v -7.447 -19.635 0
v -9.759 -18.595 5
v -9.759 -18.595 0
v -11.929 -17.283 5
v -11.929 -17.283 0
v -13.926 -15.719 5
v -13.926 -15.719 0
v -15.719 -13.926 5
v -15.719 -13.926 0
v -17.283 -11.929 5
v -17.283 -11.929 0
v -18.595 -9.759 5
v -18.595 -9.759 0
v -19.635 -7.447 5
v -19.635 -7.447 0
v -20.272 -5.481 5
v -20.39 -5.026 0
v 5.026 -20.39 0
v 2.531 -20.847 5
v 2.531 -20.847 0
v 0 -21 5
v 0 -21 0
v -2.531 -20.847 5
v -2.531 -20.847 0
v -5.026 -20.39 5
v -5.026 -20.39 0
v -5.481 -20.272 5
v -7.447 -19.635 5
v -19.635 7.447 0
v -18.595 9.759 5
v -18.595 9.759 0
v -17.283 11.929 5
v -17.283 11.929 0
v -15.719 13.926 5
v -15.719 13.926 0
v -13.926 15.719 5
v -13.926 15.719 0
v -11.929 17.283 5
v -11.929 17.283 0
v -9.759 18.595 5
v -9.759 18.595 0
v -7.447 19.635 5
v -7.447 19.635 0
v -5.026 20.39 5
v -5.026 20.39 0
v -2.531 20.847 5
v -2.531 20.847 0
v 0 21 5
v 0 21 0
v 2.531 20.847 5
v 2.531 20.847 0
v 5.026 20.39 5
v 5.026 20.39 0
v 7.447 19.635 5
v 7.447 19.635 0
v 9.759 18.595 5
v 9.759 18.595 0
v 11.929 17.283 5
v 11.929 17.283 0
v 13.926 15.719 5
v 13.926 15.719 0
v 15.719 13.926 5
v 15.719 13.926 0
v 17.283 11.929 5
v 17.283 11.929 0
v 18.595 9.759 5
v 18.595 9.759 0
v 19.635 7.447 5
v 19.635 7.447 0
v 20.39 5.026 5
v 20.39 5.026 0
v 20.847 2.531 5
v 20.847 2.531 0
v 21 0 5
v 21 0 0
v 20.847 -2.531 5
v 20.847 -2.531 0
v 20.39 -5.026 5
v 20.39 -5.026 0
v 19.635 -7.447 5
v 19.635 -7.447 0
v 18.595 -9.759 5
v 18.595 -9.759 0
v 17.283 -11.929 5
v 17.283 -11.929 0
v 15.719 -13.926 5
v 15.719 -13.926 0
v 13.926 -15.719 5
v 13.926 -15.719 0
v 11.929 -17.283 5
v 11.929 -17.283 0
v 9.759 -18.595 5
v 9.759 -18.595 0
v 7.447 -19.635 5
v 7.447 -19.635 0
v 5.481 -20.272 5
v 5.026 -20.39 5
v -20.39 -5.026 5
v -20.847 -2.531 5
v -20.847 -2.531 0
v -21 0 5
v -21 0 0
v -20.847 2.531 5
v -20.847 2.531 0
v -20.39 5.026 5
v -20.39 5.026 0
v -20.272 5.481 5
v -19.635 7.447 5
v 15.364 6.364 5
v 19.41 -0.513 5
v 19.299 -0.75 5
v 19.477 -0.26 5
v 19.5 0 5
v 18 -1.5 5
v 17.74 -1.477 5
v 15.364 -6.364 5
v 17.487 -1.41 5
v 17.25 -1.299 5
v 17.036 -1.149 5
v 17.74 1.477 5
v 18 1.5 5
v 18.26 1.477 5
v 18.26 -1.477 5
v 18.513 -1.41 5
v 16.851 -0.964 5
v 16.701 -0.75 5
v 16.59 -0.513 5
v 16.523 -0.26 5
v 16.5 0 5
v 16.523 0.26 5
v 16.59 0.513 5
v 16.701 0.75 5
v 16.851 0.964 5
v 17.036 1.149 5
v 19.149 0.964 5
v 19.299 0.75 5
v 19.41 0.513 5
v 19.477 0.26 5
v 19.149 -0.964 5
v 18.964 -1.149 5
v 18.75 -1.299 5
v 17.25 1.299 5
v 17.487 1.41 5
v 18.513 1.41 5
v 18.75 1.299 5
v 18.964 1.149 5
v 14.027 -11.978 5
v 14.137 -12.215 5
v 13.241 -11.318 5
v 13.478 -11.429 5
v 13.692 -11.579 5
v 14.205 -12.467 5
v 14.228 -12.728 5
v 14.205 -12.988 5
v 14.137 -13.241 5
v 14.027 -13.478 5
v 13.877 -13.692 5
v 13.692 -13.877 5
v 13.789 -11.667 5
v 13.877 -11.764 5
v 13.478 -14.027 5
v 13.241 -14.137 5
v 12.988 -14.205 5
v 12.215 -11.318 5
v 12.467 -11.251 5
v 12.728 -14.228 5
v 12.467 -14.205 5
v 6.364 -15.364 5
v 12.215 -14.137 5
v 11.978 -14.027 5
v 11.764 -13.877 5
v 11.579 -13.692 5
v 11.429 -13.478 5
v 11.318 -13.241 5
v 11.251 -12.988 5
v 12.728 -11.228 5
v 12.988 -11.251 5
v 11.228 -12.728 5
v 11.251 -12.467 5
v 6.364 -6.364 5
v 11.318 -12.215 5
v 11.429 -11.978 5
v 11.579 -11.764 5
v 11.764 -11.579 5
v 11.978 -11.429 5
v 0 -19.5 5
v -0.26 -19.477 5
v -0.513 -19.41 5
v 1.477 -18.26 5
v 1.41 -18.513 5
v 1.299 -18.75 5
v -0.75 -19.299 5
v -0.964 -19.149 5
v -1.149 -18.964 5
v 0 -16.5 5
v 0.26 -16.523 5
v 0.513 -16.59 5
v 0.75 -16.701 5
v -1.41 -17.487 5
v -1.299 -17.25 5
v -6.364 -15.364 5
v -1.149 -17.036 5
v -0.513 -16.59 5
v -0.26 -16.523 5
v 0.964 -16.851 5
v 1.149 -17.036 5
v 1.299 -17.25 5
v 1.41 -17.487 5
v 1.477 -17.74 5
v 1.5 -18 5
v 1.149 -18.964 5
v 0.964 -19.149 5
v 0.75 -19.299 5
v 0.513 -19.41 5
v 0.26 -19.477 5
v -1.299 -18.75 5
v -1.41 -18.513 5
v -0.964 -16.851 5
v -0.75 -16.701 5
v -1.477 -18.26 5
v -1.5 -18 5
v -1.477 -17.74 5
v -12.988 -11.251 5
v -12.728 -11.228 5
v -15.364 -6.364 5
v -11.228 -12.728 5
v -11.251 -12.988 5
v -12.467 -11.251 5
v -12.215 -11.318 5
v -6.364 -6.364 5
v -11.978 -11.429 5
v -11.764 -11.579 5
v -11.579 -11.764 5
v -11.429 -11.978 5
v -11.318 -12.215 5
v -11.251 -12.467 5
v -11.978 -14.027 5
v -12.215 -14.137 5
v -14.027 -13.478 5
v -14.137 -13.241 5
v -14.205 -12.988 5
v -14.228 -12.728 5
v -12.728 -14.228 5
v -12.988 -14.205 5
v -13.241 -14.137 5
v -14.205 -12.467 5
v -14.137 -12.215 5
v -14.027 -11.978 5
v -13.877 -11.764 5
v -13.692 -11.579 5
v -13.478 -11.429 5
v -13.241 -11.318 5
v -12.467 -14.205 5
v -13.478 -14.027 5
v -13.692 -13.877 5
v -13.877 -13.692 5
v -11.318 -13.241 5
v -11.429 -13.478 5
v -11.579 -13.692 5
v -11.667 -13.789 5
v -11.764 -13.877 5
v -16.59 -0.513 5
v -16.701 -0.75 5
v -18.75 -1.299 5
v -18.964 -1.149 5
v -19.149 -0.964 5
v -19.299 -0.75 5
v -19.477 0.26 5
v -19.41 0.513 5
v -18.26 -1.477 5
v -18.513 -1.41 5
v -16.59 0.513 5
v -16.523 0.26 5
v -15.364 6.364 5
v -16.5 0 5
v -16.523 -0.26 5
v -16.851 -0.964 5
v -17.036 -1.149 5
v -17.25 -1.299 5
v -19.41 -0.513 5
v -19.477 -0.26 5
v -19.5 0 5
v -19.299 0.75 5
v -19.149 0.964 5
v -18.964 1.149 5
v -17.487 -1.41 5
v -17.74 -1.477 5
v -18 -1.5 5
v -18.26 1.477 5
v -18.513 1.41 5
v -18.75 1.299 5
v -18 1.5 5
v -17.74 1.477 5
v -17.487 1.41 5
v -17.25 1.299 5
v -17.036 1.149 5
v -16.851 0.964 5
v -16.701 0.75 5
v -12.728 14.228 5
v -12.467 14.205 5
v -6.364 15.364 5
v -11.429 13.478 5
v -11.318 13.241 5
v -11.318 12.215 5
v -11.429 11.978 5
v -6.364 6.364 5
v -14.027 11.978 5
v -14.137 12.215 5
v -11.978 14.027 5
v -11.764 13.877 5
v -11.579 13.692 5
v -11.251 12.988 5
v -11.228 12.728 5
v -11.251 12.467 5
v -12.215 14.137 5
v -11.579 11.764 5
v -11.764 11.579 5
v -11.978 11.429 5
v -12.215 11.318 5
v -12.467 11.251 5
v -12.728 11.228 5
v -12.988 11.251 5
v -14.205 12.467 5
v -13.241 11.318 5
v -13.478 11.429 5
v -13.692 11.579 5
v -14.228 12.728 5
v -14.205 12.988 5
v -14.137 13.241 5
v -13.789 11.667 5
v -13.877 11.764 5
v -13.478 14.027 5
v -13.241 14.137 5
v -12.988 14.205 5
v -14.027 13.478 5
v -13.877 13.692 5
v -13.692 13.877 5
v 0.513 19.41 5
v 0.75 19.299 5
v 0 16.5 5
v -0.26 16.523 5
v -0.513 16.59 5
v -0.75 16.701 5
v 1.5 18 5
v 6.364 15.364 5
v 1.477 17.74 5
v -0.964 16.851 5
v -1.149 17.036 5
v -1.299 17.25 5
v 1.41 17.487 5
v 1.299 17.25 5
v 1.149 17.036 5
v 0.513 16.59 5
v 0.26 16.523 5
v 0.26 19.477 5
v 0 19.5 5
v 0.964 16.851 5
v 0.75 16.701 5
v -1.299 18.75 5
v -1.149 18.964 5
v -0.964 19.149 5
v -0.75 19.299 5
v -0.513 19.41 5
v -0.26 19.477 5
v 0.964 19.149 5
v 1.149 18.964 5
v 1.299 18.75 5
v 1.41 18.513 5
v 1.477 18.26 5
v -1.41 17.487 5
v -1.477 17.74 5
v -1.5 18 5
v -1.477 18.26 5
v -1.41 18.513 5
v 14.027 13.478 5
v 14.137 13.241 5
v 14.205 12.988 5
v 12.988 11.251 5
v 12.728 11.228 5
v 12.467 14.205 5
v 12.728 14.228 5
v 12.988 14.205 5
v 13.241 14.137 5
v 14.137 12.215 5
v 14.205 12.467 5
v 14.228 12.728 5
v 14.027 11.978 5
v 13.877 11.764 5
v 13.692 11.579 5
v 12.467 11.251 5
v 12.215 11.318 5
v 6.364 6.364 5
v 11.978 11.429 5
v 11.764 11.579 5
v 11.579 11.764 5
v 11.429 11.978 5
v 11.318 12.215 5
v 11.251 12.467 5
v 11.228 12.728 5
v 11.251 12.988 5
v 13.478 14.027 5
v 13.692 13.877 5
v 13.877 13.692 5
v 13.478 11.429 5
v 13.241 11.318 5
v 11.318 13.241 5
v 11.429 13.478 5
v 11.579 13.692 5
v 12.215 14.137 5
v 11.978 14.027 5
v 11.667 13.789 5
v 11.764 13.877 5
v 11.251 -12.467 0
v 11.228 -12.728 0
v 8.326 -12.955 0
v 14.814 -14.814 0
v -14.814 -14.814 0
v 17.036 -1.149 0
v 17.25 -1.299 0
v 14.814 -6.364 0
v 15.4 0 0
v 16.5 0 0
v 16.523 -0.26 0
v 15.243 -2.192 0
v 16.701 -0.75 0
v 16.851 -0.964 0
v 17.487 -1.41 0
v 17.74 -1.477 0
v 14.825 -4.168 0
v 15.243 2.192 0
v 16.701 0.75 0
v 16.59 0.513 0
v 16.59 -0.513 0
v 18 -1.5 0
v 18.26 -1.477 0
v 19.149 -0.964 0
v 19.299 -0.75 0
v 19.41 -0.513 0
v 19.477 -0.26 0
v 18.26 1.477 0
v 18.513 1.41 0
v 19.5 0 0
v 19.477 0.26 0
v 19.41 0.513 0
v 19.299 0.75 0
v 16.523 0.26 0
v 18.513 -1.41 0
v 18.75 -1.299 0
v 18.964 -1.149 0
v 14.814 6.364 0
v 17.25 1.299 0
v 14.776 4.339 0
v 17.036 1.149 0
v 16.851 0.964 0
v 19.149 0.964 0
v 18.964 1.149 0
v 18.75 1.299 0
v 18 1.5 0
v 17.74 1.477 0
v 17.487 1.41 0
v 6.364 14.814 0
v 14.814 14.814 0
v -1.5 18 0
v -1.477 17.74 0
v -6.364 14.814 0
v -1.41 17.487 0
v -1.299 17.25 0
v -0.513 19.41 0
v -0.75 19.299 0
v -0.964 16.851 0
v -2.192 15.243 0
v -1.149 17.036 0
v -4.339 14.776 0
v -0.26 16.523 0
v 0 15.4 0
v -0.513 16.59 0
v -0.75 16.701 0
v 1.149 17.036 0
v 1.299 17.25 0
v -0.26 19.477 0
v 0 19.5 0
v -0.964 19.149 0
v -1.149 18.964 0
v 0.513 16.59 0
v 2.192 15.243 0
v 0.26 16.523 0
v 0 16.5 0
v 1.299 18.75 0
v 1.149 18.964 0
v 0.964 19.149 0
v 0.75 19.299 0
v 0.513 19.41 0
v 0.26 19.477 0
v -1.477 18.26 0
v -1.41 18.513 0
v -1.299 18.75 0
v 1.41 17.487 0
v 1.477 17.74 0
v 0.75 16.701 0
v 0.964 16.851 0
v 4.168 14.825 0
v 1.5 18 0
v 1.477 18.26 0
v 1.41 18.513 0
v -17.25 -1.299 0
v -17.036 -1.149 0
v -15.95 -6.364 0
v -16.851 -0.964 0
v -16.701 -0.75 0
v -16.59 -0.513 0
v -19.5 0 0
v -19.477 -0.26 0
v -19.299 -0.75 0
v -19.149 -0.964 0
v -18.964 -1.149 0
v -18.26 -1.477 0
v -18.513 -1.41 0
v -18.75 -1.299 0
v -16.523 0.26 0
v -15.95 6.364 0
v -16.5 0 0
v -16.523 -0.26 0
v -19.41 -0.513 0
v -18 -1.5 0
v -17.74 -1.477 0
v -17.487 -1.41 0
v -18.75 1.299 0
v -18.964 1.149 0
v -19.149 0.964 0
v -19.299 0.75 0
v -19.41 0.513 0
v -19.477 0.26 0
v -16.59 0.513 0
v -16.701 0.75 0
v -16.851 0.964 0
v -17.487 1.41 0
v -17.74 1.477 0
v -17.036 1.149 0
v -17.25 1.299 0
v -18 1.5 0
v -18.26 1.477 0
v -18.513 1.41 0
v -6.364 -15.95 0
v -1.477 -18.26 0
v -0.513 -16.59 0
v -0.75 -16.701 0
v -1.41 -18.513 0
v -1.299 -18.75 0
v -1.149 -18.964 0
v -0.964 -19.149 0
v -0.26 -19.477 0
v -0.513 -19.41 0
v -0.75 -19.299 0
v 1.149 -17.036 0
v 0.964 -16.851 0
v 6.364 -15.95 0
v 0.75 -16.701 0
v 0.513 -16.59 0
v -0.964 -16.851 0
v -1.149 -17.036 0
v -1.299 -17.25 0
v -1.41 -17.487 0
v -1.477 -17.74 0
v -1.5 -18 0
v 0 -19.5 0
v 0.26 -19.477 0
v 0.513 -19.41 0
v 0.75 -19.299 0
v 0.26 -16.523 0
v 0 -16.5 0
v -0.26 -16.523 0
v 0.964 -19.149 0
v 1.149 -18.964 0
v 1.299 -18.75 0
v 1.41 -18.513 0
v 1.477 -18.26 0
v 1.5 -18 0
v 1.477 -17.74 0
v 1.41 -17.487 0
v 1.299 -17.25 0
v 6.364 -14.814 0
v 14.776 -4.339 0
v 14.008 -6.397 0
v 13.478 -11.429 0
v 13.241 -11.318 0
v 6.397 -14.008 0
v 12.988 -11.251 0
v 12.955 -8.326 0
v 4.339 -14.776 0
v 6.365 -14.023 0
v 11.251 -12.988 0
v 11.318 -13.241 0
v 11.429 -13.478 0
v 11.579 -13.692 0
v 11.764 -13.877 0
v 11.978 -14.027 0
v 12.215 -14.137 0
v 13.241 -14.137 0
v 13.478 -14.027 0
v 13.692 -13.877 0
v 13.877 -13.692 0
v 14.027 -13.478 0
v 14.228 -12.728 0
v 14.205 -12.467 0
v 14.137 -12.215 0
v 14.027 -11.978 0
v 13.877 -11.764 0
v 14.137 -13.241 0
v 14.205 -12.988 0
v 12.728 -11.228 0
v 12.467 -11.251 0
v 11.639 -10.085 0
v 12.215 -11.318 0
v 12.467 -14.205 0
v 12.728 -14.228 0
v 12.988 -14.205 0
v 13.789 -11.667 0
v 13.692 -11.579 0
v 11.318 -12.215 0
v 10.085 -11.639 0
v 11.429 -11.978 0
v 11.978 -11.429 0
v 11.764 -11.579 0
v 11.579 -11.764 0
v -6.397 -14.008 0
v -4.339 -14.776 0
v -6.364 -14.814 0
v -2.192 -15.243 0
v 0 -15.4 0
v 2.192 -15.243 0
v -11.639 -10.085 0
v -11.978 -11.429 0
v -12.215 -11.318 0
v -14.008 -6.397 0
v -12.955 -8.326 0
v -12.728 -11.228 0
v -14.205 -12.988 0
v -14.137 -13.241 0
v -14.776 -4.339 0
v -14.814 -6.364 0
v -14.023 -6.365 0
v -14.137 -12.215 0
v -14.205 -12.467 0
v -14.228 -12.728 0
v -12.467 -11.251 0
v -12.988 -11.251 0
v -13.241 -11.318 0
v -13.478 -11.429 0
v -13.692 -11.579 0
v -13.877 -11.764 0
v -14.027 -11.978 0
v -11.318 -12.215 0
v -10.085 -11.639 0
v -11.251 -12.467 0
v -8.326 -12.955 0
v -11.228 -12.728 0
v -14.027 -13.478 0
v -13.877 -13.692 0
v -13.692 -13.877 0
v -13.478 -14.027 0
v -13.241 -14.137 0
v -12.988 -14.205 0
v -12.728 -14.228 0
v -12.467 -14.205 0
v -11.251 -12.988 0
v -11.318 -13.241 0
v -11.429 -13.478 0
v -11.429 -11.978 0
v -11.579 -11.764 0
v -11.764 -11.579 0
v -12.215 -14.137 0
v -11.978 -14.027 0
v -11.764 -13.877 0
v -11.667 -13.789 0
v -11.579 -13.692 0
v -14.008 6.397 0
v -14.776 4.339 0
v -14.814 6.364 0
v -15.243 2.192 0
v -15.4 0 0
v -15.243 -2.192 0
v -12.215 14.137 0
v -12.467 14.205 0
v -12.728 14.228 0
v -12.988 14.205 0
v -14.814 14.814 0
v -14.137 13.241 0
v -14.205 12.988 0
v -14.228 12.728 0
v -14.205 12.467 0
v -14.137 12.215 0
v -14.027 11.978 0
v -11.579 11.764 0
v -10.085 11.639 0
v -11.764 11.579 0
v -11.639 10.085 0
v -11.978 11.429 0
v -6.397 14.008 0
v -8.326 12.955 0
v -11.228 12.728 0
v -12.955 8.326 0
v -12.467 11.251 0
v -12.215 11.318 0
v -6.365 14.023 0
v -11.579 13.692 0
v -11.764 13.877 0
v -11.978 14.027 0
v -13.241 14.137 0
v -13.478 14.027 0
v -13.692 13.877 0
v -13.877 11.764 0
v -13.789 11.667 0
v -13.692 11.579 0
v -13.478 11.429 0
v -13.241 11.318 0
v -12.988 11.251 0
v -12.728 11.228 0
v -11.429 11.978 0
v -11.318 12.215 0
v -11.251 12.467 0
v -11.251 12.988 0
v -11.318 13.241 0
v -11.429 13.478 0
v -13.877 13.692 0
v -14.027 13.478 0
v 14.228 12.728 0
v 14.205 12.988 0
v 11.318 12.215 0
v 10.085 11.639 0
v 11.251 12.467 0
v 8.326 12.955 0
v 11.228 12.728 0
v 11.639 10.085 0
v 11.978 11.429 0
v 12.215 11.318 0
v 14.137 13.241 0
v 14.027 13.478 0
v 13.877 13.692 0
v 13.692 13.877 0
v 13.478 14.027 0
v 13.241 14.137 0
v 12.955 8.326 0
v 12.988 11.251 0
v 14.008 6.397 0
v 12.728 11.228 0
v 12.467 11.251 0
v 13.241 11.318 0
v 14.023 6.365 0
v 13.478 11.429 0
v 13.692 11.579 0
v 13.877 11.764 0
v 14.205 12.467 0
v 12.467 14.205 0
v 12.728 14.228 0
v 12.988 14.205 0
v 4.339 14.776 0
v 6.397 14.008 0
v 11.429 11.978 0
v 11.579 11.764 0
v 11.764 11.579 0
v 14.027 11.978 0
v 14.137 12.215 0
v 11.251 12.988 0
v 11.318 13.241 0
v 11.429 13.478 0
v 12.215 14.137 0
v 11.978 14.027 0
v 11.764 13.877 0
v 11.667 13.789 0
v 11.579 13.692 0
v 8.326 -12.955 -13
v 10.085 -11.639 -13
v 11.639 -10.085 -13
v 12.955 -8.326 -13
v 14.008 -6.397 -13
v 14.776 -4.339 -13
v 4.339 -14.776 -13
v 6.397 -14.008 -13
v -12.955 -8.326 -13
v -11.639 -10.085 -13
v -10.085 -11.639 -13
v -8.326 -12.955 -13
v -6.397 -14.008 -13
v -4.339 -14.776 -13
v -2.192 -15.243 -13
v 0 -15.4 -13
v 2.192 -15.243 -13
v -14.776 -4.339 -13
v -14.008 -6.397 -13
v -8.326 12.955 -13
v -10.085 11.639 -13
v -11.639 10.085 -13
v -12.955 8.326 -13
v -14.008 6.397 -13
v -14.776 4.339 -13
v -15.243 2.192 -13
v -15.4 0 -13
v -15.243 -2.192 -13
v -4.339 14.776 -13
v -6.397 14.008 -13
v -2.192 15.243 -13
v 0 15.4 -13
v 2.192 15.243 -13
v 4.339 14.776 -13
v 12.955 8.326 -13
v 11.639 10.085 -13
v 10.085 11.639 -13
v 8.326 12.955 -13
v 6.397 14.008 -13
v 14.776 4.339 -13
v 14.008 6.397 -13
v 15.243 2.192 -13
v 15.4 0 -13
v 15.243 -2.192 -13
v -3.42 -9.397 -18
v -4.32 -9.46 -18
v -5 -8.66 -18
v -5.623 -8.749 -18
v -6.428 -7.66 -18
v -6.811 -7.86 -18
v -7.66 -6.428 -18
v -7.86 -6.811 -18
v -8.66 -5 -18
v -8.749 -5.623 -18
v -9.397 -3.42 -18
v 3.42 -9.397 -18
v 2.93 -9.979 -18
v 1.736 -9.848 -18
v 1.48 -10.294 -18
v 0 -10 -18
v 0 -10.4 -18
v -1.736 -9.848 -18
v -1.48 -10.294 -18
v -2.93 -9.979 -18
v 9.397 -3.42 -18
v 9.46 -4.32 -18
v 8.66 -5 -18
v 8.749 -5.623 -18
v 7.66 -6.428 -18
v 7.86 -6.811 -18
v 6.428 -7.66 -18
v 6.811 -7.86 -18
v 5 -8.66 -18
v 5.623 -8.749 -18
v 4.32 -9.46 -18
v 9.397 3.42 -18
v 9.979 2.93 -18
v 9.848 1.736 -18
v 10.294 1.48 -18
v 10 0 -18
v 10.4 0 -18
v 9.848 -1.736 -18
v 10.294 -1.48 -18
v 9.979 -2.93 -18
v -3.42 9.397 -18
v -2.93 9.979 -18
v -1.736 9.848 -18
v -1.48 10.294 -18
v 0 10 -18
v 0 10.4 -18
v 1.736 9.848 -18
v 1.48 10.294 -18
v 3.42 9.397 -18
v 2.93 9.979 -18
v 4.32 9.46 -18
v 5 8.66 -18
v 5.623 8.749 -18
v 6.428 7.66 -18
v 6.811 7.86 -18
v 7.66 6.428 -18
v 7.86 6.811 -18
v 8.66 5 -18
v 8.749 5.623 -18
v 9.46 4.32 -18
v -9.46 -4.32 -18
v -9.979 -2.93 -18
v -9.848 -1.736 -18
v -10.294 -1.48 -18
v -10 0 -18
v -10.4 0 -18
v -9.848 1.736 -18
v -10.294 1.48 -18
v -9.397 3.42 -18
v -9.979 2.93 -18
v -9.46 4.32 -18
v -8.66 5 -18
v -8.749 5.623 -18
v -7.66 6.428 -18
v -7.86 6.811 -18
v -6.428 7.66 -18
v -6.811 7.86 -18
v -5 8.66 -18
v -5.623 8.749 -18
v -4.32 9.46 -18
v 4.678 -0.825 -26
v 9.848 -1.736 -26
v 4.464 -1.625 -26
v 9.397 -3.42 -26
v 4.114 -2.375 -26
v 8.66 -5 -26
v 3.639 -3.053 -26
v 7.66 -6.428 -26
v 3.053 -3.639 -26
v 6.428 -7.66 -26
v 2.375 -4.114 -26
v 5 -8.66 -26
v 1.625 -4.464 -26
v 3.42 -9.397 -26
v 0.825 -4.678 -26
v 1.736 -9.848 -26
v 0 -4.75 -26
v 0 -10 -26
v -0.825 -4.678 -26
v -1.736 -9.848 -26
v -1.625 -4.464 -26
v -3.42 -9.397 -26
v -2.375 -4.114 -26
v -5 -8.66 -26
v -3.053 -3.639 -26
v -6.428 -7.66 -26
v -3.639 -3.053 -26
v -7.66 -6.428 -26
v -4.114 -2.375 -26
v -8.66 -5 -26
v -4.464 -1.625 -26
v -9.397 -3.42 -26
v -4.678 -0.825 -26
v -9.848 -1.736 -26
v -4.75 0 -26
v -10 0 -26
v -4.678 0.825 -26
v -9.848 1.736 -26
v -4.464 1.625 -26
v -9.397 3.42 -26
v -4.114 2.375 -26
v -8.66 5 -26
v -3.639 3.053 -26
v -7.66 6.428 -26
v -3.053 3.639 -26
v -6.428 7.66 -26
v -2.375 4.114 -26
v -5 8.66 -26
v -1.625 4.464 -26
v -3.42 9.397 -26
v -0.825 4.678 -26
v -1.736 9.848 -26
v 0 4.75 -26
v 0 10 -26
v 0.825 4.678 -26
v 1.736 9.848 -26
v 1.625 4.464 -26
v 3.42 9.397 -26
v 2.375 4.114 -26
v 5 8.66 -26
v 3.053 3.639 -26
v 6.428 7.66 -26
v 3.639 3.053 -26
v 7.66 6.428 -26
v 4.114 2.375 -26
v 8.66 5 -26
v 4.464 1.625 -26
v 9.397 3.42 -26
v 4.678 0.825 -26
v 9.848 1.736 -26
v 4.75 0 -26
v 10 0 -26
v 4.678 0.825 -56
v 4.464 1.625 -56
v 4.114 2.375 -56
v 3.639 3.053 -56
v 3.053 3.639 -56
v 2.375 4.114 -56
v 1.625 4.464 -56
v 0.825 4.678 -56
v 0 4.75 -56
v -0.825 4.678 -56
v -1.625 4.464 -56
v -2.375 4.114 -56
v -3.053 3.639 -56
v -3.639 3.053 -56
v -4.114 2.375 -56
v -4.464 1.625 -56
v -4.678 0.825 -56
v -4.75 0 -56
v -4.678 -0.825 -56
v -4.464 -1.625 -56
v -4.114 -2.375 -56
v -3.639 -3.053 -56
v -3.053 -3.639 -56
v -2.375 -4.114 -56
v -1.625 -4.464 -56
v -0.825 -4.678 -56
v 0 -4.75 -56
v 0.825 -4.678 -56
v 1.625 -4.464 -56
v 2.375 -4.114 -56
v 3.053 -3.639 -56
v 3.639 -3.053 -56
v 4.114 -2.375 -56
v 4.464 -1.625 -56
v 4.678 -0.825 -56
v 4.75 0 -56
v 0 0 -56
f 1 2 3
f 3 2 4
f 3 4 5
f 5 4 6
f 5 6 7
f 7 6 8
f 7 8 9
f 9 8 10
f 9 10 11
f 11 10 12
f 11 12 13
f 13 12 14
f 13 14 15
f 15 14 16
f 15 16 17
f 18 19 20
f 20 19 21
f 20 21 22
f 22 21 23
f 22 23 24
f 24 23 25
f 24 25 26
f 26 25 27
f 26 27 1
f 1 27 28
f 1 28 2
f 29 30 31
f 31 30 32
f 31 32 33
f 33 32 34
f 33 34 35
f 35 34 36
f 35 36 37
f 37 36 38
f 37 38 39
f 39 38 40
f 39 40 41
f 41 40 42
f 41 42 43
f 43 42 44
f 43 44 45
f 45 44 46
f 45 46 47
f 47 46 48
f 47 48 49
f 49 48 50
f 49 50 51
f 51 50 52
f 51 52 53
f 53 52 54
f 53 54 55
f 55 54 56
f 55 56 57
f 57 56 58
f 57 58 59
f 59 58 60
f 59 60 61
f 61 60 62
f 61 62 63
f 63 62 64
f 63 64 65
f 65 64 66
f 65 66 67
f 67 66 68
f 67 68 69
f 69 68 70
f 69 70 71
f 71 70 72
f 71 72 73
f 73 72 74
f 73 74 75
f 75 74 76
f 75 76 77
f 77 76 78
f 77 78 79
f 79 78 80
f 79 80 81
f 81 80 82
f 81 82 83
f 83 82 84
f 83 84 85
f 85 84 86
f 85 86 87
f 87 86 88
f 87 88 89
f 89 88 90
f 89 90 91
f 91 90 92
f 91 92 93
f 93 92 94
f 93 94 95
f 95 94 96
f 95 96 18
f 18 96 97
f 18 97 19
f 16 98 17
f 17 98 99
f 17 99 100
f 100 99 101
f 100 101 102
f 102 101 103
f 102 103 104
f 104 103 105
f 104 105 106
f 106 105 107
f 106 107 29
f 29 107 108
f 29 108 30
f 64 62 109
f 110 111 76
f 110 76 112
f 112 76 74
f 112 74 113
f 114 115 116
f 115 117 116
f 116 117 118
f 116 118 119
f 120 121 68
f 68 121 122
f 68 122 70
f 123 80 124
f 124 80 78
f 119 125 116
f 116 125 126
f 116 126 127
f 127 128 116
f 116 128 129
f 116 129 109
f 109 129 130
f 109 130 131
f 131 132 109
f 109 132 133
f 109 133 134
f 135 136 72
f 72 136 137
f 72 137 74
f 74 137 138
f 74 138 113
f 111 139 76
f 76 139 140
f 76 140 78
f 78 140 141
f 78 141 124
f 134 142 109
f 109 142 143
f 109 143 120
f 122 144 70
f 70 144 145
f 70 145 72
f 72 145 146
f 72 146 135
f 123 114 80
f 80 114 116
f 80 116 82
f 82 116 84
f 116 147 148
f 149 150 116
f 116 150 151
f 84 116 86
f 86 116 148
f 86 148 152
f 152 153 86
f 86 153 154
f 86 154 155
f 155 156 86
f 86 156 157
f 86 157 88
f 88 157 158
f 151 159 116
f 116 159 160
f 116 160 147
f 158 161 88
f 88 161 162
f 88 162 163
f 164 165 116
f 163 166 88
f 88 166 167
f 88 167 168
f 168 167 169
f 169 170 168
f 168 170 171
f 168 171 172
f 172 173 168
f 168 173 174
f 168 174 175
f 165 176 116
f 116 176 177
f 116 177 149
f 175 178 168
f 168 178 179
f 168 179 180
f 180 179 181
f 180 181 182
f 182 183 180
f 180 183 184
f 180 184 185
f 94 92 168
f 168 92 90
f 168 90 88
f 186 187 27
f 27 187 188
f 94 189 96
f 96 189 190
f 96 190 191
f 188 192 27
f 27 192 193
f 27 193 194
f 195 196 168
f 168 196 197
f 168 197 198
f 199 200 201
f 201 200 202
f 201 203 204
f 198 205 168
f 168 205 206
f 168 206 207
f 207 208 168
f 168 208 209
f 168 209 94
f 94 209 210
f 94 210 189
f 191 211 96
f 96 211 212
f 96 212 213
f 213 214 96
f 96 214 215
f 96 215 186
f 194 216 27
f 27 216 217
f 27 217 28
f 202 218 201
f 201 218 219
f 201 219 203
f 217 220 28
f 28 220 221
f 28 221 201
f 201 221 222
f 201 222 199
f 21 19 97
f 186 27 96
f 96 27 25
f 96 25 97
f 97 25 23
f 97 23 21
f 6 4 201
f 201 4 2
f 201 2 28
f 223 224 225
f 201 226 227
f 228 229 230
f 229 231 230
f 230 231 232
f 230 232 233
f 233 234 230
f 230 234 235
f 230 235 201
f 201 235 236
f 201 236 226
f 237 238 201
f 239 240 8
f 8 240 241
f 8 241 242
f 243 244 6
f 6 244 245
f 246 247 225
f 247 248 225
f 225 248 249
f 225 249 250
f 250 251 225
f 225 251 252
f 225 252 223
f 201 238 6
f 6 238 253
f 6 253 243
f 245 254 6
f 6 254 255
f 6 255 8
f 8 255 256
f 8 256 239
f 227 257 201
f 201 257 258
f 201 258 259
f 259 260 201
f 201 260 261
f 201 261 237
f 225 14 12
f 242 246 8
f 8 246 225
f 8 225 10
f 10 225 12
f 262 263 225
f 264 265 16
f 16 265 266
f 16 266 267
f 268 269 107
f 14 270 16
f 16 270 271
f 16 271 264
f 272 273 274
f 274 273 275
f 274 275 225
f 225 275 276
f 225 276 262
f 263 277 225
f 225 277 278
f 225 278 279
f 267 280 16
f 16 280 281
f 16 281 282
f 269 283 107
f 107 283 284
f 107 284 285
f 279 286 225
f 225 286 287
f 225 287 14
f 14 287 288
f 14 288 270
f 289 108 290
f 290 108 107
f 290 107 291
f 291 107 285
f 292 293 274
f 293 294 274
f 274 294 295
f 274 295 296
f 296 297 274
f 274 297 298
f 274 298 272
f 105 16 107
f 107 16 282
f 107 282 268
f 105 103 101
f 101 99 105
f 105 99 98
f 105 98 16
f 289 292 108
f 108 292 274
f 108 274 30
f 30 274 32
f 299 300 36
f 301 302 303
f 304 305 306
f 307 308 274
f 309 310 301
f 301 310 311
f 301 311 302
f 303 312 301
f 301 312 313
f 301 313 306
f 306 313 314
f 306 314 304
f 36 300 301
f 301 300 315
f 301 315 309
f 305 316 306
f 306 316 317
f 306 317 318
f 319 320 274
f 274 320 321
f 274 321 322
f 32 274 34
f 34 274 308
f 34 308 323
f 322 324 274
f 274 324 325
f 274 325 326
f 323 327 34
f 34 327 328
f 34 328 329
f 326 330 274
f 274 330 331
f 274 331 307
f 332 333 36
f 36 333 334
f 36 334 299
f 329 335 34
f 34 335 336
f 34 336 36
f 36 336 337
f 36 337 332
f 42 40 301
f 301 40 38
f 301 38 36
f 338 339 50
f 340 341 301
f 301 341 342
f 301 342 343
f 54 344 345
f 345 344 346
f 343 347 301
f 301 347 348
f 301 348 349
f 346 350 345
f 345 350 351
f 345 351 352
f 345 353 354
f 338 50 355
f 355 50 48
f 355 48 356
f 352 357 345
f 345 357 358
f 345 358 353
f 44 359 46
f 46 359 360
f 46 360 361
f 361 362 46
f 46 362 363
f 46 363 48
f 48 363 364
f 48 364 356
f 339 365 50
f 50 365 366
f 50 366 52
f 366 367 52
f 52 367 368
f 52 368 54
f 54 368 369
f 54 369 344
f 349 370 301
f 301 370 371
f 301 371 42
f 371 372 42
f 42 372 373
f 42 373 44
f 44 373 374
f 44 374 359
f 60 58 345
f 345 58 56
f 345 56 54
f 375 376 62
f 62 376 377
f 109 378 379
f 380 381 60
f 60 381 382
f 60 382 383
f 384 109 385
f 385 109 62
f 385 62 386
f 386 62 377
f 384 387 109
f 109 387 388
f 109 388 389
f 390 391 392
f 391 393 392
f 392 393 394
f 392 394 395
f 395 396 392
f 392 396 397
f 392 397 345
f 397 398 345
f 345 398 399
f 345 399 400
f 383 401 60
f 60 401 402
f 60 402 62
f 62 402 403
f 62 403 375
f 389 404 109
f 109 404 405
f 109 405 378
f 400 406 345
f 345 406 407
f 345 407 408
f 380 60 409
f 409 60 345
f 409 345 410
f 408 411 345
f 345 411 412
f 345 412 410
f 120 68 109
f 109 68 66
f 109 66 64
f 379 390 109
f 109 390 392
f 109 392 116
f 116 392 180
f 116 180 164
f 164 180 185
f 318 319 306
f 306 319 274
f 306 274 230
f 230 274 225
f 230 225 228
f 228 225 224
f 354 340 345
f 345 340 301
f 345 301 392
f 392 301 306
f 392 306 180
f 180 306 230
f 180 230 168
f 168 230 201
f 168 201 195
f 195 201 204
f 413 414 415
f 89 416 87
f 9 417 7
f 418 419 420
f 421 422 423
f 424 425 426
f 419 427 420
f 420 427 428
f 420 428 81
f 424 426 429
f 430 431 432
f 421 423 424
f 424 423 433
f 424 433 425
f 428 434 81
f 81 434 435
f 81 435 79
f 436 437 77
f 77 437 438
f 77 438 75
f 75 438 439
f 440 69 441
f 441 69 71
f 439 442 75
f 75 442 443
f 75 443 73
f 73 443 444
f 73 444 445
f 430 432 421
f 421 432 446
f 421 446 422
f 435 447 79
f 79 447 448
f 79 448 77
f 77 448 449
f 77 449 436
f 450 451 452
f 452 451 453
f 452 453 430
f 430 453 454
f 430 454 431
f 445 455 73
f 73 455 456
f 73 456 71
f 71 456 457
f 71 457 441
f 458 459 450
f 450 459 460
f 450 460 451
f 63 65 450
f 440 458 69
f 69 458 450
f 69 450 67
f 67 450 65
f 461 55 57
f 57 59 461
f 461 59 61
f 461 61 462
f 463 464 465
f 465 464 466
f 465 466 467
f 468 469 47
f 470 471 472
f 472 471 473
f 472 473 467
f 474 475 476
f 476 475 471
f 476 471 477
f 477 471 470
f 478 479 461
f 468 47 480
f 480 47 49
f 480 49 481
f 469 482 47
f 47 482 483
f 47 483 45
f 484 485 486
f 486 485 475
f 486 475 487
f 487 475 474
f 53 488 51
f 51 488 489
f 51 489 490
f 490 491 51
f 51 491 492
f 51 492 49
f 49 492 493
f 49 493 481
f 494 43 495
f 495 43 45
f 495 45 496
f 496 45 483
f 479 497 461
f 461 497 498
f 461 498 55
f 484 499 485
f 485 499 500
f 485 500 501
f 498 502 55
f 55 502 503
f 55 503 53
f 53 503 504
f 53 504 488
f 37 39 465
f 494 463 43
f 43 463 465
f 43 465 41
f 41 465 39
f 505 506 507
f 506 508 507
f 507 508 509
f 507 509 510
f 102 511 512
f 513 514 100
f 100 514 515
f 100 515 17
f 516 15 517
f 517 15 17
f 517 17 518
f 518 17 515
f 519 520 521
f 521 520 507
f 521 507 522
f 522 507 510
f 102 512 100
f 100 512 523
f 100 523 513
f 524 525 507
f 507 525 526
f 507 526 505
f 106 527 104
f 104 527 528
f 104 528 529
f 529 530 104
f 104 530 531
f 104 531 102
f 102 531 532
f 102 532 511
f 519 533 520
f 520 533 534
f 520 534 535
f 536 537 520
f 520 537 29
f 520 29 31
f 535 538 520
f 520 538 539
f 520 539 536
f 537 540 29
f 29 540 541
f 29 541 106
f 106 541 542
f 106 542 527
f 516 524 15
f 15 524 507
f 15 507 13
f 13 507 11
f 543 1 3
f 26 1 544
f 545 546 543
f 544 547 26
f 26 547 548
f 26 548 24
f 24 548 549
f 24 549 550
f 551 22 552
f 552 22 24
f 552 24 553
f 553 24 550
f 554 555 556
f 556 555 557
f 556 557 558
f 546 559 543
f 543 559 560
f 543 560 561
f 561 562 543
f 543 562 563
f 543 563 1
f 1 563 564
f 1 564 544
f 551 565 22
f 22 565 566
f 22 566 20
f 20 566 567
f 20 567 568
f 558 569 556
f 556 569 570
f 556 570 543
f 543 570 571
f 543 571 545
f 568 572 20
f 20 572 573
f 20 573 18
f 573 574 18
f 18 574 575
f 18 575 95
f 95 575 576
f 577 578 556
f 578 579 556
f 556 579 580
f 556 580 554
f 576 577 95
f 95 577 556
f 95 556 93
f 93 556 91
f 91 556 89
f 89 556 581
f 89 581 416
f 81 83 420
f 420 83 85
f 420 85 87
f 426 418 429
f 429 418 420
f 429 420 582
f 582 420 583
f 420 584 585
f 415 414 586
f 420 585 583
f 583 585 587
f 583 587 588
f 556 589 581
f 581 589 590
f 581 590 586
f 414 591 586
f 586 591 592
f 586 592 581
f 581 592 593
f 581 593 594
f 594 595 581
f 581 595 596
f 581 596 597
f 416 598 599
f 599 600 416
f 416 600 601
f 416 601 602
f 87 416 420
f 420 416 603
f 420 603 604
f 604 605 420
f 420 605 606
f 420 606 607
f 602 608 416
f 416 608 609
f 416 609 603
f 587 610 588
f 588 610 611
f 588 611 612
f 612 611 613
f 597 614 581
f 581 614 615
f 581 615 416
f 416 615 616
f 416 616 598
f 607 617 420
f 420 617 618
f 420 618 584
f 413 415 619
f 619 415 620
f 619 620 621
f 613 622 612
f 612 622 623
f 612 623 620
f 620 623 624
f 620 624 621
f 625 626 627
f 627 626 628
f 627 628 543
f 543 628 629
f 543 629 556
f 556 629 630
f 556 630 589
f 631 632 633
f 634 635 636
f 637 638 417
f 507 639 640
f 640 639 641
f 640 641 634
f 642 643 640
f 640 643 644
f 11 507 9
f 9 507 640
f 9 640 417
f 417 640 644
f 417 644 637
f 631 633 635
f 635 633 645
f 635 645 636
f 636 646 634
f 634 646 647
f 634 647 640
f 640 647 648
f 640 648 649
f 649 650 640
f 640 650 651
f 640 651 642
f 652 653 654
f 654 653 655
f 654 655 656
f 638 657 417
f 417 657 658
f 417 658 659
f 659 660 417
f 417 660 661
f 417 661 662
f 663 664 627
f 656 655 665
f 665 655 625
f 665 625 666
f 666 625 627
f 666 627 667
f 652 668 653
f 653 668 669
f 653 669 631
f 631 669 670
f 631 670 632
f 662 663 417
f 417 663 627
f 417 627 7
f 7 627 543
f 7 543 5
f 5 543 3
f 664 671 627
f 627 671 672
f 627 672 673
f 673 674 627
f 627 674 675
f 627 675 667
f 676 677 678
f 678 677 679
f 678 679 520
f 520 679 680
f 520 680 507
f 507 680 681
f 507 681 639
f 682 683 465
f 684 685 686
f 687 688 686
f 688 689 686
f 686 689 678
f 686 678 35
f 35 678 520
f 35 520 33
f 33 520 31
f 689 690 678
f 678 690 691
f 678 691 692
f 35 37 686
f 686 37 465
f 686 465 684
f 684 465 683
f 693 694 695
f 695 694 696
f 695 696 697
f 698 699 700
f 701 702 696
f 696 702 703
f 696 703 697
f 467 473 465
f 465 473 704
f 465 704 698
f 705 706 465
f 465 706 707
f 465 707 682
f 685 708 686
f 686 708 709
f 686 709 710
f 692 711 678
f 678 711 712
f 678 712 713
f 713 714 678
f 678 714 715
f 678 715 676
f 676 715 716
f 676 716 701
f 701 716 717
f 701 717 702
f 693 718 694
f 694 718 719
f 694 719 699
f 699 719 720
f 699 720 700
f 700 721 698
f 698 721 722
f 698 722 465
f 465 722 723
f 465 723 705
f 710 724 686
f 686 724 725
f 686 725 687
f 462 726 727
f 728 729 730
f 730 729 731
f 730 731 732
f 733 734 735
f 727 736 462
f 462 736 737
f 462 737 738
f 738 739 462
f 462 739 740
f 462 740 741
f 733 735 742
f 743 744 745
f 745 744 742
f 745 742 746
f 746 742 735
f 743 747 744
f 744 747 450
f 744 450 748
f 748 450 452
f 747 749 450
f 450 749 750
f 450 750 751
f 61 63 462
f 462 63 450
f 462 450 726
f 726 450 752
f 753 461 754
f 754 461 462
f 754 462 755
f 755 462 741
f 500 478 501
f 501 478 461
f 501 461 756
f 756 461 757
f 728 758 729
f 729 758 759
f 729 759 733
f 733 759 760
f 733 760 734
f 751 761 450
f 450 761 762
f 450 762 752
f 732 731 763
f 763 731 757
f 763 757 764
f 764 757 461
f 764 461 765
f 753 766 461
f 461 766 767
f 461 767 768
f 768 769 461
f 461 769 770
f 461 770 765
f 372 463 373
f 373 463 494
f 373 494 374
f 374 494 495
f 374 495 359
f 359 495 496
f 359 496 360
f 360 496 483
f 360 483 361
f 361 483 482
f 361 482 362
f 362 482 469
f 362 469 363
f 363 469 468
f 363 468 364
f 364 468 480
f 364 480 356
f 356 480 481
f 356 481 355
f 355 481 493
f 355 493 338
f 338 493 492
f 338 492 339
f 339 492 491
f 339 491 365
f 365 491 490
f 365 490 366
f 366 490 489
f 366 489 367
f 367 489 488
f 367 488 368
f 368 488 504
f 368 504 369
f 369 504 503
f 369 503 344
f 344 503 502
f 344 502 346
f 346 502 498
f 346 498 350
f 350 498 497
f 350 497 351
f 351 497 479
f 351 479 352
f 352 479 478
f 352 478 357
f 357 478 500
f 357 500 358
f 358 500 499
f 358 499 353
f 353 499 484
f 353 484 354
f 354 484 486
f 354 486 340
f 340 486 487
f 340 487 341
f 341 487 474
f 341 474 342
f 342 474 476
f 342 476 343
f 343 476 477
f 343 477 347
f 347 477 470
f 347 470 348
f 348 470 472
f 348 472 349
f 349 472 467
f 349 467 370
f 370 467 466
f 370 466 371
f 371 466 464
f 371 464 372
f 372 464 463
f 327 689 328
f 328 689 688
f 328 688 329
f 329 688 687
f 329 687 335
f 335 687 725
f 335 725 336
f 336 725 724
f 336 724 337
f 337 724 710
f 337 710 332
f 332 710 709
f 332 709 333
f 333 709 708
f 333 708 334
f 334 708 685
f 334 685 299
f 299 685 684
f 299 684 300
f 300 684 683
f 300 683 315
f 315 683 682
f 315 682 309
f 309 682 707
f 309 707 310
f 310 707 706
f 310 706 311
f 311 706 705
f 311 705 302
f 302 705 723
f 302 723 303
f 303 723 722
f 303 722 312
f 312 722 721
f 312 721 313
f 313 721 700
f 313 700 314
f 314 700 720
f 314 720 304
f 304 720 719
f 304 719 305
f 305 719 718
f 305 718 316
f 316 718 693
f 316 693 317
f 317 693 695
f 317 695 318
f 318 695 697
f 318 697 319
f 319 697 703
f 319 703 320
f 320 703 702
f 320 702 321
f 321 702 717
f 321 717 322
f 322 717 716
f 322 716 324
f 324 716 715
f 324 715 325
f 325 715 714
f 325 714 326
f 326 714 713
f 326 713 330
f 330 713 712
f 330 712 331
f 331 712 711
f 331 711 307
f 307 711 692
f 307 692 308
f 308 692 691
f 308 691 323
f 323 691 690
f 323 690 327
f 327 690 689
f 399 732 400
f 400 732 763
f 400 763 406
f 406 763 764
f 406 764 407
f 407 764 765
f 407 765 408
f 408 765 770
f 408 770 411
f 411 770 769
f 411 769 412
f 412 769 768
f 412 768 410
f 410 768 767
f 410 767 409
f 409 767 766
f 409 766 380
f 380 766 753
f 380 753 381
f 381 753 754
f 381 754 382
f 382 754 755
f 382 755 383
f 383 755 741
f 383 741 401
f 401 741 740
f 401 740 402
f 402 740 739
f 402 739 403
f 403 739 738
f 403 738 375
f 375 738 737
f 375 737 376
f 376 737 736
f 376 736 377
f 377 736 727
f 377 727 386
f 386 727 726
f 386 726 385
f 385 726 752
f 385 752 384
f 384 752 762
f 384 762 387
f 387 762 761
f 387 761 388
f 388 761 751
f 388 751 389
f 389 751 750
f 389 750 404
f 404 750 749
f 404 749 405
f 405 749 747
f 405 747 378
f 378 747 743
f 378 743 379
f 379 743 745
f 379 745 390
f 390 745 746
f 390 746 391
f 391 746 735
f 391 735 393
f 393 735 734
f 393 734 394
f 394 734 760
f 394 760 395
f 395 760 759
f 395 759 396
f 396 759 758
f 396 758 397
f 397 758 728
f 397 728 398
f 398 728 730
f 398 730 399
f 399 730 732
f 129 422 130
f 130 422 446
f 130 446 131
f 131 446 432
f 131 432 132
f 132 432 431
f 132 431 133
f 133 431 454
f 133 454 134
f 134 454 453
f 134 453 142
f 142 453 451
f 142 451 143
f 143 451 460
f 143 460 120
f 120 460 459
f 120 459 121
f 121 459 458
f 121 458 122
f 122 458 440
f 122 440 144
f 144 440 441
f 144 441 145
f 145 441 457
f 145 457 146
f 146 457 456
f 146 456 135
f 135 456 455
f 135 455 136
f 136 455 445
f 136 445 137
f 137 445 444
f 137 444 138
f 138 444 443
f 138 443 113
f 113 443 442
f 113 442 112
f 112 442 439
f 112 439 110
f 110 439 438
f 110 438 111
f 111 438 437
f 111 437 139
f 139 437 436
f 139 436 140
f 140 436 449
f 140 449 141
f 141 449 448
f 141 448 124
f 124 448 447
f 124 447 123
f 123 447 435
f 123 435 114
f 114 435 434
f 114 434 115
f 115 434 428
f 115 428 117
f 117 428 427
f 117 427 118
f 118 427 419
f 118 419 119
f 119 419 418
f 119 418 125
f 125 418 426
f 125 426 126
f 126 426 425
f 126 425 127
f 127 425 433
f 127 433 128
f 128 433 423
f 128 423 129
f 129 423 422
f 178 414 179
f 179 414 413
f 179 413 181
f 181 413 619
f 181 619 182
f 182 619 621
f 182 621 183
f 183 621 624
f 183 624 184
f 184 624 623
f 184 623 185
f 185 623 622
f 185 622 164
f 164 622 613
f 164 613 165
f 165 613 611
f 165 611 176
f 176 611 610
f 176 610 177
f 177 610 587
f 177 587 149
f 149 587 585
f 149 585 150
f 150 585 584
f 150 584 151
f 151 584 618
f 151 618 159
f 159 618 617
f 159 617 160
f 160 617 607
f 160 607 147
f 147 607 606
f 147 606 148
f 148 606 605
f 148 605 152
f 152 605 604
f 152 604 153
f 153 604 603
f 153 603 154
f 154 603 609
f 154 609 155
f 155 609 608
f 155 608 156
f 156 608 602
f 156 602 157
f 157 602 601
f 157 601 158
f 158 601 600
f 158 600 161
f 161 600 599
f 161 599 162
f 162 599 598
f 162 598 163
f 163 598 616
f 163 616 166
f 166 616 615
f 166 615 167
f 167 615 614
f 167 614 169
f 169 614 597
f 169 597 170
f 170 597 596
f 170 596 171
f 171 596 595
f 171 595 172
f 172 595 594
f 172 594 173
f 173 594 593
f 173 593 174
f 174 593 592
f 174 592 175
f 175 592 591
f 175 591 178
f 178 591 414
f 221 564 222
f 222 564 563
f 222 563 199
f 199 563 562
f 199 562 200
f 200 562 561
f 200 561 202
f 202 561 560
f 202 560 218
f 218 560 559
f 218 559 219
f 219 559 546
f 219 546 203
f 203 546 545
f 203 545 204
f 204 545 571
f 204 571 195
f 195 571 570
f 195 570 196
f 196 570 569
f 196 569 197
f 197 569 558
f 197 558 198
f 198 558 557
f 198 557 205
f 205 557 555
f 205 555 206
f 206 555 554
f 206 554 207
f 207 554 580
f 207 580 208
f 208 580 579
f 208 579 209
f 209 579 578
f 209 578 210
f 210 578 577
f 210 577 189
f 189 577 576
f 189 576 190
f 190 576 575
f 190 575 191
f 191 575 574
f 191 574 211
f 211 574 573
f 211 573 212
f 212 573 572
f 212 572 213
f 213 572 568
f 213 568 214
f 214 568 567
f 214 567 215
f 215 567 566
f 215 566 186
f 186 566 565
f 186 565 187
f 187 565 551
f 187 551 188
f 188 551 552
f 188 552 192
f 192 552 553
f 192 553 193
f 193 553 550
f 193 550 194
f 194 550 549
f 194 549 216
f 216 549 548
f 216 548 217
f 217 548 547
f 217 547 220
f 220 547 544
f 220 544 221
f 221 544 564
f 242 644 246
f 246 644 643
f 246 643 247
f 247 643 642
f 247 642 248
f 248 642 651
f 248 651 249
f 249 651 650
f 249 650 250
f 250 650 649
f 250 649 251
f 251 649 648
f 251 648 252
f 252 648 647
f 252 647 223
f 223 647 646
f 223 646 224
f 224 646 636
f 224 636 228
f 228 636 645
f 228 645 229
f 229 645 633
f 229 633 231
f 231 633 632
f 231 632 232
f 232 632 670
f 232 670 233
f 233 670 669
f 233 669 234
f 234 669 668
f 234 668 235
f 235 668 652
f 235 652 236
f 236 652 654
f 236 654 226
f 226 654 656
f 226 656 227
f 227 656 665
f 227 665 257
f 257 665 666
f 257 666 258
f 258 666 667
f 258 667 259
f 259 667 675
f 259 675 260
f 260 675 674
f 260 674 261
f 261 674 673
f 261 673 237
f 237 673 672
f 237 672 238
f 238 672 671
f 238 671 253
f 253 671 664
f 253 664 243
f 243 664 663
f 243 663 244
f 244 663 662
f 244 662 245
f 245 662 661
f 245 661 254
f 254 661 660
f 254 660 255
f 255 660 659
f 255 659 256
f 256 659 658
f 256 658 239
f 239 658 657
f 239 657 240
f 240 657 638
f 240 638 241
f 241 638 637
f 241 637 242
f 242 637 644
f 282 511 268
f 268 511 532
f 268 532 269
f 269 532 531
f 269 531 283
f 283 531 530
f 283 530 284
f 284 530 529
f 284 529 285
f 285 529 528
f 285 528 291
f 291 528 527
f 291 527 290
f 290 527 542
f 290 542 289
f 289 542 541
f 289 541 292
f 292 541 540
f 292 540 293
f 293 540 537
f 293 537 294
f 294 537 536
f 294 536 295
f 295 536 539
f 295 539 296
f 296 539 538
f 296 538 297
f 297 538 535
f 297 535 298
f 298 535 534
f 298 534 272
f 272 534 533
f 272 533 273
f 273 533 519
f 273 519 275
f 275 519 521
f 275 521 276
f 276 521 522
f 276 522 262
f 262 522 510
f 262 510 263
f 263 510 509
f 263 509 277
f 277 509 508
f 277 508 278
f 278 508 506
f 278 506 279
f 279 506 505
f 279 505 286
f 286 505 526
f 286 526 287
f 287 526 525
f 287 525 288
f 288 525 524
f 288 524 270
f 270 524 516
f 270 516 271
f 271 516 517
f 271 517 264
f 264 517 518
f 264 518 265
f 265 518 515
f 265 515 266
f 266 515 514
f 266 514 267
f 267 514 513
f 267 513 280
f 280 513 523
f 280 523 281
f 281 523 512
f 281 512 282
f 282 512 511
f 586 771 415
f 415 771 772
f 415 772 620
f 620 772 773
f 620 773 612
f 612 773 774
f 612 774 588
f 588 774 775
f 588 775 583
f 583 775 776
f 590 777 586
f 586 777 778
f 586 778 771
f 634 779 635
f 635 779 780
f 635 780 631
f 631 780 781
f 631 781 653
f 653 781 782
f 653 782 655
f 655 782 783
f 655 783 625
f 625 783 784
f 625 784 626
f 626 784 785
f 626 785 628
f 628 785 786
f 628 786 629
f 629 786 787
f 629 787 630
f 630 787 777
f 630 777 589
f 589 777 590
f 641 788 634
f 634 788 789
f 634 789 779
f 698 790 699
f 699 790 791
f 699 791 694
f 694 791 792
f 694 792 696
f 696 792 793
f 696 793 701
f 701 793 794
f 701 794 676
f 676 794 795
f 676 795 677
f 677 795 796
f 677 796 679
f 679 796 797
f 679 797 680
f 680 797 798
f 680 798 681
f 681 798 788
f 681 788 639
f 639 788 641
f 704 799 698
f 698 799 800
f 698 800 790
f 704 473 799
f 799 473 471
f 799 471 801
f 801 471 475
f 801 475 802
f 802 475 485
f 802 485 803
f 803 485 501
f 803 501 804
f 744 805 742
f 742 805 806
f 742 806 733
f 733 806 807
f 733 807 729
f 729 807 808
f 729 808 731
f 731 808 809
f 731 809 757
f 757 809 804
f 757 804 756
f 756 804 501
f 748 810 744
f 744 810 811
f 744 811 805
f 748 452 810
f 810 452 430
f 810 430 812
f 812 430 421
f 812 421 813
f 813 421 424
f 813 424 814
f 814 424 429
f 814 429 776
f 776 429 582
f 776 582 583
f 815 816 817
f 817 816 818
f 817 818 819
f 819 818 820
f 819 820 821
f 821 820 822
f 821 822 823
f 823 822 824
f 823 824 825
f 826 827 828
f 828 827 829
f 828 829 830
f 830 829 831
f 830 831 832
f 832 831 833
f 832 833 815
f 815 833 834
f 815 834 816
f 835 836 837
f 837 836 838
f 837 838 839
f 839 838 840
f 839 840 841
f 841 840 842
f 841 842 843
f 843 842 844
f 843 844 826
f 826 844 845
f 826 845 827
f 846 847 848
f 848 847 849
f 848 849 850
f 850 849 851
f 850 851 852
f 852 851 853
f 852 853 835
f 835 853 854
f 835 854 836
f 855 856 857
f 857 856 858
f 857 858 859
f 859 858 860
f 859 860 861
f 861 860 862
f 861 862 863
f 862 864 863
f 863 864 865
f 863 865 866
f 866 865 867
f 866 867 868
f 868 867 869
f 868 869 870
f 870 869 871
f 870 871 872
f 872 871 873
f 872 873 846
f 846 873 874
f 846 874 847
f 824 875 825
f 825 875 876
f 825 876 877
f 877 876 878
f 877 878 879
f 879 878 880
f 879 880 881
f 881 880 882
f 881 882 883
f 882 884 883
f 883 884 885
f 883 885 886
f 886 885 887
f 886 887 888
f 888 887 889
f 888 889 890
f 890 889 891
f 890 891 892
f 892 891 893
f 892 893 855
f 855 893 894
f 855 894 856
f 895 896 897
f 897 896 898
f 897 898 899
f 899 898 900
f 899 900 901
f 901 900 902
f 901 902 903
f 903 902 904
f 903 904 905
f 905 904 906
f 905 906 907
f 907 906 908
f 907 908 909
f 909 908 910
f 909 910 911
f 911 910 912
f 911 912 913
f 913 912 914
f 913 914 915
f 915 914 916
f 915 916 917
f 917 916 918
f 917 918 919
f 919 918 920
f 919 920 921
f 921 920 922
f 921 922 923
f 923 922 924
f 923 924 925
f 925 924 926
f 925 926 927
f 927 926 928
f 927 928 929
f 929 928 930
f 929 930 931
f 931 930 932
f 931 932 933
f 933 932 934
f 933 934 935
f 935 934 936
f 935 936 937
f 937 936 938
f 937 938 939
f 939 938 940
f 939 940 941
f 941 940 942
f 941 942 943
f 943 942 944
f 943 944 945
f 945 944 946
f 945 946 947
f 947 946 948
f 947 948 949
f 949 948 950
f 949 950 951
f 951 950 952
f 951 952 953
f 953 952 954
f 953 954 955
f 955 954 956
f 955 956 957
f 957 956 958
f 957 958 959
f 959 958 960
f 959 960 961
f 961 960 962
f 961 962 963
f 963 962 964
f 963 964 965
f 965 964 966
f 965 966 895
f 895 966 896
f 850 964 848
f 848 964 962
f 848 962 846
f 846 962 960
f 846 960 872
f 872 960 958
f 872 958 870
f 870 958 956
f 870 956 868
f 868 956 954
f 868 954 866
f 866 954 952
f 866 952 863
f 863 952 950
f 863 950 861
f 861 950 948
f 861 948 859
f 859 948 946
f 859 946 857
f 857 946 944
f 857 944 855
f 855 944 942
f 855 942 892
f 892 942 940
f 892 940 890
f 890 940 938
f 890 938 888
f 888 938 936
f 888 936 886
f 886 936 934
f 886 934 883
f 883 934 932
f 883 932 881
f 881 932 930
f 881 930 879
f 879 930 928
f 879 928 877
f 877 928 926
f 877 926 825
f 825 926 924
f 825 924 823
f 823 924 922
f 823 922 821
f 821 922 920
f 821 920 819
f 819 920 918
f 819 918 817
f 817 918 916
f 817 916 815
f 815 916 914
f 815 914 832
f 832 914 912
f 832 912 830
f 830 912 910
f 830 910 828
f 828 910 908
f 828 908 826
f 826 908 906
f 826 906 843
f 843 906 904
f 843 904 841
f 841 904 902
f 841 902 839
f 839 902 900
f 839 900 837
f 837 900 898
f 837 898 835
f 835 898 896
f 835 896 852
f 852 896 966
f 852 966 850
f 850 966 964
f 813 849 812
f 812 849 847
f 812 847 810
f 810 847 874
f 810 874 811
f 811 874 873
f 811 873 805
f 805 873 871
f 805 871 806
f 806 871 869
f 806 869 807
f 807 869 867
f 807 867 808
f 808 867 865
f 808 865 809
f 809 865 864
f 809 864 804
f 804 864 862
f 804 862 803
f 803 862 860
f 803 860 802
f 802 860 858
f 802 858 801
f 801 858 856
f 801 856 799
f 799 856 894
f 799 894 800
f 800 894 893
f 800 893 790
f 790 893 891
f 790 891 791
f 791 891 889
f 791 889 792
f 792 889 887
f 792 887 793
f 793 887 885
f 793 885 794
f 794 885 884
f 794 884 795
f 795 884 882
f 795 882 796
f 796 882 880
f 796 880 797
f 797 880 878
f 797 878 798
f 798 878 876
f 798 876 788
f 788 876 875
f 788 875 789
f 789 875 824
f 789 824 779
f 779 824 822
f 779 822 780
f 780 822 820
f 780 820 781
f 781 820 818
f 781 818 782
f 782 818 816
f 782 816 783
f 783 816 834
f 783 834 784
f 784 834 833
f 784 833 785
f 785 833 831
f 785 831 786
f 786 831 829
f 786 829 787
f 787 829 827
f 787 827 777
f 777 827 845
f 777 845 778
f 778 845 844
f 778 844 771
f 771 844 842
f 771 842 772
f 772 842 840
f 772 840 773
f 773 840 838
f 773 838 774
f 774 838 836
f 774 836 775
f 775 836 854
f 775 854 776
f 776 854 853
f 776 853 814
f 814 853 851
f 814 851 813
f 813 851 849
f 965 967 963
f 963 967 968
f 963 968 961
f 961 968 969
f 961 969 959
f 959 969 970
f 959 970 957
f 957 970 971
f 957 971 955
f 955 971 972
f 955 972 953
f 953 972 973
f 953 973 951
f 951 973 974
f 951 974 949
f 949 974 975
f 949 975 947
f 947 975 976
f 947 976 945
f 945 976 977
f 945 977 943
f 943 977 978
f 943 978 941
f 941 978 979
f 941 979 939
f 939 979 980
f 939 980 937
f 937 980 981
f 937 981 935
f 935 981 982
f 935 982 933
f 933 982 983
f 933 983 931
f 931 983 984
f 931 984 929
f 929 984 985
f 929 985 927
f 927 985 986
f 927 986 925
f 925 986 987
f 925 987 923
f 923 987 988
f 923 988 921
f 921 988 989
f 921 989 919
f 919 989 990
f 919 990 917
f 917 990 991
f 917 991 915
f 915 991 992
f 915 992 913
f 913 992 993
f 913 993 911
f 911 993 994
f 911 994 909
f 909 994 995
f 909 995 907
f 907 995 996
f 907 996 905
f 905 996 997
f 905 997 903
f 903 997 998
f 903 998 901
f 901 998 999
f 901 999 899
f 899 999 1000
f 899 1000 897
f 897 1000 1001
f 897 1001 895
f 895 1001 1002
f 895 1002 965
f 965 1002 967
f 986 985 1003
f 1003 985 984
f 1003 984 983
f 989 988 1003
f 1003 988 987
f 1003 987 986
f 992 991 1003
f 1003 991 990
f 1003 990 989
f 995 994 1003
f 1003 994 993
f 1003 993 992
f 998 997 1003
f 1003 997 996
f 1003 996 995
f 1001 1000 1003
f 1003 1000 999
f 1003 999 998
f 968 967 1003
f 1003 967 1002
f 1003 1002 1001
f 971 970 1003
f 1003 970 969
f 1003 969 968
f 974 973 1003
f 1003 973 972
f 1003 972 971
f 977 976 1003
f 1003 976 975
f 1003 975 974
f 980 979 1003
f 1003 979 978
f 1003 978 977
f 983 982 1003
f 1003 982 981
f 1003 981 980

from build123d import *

# Parameters (mm, degrees)
SKETCH1_R           = 21
BOSS_EXTRUDE1_DEPTH = 5
SKETCH2_R           = 1.5
CUT_EXTRUDE1_DEPTH  = 31.116440693
SKETCH1_3_R         = 10
BOSS_EXTRUDE2_DEPTH = 26
CIRPATTERN1_COUNT   = 8
SKETCH1_4_R         = 15.4
SKETCH1_4_R_2       = 10
BOSS_EXTRUDE3_DEPTH = 18
CHAMFER2_SIZE       = 5
SKETCH3_R           = 4.75
BOSS_EXTRUDE4_DEPTH = 30


with BuildPart() as part:
    # Sketch1 → Boss-Extrude1 (new body)
    with BuildSketch(Plane.XY):
        Circle(SKETCH1_R)
    extrude(amount=BOSS_EXTRUDE1_DEPTH)

    # Sketch2 → Cut-Extrude1 (cut, through all)
    with BuildSketch(Plane(origin=(0, 0, 0), x_dir=(-1, 0, 0), z_dir=(0, 0, -1))):
        with Locations((0, 18)):
            Circle(SKETCH2_R)
    cut_extrude1 = extrude(amount=-CUT_EXTRUDE1_DEPTH, mode=Mode.SUBTRACT)

    # Sketch1<3> → Boss-Extrude2 (add)
    with BuildSketch(Plane.XY):
        Circle(SKETCH1_3_R)
    extrude(amount=-BOSS_EXTRUDE2_DEPTH)

    # CirPattern1: Cut-Extrude1 ×8 about axis
    cirpattern1_axis = Axis((0, 0, -26), (0, 0, 1))
    for i in range(1, CIRPATTERN1_COUNT):
        add(cut_extrude1.rotate(cirpattern1_axis, i * 360 / CIRPATTERN1_COUNT), mode=Mode.SUBTRACT)

    # Sketch1<4> → Boss-Extrude3 (add)
    with BuildSketch(Plane.XY):
        Circle(SKETCH1_4_R)
        Circle(SKETCH1_4_R_2, mode=Mode.SUBTRACT)
    extrude(amount=-BOSS_EXTRUDE3_DEPTH)

    # Chamfer2
    chamfer2_edges = [part.edges().sort_by_distance(p)[0] for p in [
        (-15.4, 0, -18),
    ]]
    chamfer(chamfer2_edges, length=CHAMFER2_SIZE)

    # Sketch3 → Boss-Extrude4 (add)
    with BuildSketch(Plane(origin=(0, 0, -26), x_dir=(-1, 0, 0), z_dir=(0, 0, -1))):
        Circle(SKETCH3_R)
    extrude(amount=BOSS_EXTRUDE4_DEPTH)


solid = part.part
